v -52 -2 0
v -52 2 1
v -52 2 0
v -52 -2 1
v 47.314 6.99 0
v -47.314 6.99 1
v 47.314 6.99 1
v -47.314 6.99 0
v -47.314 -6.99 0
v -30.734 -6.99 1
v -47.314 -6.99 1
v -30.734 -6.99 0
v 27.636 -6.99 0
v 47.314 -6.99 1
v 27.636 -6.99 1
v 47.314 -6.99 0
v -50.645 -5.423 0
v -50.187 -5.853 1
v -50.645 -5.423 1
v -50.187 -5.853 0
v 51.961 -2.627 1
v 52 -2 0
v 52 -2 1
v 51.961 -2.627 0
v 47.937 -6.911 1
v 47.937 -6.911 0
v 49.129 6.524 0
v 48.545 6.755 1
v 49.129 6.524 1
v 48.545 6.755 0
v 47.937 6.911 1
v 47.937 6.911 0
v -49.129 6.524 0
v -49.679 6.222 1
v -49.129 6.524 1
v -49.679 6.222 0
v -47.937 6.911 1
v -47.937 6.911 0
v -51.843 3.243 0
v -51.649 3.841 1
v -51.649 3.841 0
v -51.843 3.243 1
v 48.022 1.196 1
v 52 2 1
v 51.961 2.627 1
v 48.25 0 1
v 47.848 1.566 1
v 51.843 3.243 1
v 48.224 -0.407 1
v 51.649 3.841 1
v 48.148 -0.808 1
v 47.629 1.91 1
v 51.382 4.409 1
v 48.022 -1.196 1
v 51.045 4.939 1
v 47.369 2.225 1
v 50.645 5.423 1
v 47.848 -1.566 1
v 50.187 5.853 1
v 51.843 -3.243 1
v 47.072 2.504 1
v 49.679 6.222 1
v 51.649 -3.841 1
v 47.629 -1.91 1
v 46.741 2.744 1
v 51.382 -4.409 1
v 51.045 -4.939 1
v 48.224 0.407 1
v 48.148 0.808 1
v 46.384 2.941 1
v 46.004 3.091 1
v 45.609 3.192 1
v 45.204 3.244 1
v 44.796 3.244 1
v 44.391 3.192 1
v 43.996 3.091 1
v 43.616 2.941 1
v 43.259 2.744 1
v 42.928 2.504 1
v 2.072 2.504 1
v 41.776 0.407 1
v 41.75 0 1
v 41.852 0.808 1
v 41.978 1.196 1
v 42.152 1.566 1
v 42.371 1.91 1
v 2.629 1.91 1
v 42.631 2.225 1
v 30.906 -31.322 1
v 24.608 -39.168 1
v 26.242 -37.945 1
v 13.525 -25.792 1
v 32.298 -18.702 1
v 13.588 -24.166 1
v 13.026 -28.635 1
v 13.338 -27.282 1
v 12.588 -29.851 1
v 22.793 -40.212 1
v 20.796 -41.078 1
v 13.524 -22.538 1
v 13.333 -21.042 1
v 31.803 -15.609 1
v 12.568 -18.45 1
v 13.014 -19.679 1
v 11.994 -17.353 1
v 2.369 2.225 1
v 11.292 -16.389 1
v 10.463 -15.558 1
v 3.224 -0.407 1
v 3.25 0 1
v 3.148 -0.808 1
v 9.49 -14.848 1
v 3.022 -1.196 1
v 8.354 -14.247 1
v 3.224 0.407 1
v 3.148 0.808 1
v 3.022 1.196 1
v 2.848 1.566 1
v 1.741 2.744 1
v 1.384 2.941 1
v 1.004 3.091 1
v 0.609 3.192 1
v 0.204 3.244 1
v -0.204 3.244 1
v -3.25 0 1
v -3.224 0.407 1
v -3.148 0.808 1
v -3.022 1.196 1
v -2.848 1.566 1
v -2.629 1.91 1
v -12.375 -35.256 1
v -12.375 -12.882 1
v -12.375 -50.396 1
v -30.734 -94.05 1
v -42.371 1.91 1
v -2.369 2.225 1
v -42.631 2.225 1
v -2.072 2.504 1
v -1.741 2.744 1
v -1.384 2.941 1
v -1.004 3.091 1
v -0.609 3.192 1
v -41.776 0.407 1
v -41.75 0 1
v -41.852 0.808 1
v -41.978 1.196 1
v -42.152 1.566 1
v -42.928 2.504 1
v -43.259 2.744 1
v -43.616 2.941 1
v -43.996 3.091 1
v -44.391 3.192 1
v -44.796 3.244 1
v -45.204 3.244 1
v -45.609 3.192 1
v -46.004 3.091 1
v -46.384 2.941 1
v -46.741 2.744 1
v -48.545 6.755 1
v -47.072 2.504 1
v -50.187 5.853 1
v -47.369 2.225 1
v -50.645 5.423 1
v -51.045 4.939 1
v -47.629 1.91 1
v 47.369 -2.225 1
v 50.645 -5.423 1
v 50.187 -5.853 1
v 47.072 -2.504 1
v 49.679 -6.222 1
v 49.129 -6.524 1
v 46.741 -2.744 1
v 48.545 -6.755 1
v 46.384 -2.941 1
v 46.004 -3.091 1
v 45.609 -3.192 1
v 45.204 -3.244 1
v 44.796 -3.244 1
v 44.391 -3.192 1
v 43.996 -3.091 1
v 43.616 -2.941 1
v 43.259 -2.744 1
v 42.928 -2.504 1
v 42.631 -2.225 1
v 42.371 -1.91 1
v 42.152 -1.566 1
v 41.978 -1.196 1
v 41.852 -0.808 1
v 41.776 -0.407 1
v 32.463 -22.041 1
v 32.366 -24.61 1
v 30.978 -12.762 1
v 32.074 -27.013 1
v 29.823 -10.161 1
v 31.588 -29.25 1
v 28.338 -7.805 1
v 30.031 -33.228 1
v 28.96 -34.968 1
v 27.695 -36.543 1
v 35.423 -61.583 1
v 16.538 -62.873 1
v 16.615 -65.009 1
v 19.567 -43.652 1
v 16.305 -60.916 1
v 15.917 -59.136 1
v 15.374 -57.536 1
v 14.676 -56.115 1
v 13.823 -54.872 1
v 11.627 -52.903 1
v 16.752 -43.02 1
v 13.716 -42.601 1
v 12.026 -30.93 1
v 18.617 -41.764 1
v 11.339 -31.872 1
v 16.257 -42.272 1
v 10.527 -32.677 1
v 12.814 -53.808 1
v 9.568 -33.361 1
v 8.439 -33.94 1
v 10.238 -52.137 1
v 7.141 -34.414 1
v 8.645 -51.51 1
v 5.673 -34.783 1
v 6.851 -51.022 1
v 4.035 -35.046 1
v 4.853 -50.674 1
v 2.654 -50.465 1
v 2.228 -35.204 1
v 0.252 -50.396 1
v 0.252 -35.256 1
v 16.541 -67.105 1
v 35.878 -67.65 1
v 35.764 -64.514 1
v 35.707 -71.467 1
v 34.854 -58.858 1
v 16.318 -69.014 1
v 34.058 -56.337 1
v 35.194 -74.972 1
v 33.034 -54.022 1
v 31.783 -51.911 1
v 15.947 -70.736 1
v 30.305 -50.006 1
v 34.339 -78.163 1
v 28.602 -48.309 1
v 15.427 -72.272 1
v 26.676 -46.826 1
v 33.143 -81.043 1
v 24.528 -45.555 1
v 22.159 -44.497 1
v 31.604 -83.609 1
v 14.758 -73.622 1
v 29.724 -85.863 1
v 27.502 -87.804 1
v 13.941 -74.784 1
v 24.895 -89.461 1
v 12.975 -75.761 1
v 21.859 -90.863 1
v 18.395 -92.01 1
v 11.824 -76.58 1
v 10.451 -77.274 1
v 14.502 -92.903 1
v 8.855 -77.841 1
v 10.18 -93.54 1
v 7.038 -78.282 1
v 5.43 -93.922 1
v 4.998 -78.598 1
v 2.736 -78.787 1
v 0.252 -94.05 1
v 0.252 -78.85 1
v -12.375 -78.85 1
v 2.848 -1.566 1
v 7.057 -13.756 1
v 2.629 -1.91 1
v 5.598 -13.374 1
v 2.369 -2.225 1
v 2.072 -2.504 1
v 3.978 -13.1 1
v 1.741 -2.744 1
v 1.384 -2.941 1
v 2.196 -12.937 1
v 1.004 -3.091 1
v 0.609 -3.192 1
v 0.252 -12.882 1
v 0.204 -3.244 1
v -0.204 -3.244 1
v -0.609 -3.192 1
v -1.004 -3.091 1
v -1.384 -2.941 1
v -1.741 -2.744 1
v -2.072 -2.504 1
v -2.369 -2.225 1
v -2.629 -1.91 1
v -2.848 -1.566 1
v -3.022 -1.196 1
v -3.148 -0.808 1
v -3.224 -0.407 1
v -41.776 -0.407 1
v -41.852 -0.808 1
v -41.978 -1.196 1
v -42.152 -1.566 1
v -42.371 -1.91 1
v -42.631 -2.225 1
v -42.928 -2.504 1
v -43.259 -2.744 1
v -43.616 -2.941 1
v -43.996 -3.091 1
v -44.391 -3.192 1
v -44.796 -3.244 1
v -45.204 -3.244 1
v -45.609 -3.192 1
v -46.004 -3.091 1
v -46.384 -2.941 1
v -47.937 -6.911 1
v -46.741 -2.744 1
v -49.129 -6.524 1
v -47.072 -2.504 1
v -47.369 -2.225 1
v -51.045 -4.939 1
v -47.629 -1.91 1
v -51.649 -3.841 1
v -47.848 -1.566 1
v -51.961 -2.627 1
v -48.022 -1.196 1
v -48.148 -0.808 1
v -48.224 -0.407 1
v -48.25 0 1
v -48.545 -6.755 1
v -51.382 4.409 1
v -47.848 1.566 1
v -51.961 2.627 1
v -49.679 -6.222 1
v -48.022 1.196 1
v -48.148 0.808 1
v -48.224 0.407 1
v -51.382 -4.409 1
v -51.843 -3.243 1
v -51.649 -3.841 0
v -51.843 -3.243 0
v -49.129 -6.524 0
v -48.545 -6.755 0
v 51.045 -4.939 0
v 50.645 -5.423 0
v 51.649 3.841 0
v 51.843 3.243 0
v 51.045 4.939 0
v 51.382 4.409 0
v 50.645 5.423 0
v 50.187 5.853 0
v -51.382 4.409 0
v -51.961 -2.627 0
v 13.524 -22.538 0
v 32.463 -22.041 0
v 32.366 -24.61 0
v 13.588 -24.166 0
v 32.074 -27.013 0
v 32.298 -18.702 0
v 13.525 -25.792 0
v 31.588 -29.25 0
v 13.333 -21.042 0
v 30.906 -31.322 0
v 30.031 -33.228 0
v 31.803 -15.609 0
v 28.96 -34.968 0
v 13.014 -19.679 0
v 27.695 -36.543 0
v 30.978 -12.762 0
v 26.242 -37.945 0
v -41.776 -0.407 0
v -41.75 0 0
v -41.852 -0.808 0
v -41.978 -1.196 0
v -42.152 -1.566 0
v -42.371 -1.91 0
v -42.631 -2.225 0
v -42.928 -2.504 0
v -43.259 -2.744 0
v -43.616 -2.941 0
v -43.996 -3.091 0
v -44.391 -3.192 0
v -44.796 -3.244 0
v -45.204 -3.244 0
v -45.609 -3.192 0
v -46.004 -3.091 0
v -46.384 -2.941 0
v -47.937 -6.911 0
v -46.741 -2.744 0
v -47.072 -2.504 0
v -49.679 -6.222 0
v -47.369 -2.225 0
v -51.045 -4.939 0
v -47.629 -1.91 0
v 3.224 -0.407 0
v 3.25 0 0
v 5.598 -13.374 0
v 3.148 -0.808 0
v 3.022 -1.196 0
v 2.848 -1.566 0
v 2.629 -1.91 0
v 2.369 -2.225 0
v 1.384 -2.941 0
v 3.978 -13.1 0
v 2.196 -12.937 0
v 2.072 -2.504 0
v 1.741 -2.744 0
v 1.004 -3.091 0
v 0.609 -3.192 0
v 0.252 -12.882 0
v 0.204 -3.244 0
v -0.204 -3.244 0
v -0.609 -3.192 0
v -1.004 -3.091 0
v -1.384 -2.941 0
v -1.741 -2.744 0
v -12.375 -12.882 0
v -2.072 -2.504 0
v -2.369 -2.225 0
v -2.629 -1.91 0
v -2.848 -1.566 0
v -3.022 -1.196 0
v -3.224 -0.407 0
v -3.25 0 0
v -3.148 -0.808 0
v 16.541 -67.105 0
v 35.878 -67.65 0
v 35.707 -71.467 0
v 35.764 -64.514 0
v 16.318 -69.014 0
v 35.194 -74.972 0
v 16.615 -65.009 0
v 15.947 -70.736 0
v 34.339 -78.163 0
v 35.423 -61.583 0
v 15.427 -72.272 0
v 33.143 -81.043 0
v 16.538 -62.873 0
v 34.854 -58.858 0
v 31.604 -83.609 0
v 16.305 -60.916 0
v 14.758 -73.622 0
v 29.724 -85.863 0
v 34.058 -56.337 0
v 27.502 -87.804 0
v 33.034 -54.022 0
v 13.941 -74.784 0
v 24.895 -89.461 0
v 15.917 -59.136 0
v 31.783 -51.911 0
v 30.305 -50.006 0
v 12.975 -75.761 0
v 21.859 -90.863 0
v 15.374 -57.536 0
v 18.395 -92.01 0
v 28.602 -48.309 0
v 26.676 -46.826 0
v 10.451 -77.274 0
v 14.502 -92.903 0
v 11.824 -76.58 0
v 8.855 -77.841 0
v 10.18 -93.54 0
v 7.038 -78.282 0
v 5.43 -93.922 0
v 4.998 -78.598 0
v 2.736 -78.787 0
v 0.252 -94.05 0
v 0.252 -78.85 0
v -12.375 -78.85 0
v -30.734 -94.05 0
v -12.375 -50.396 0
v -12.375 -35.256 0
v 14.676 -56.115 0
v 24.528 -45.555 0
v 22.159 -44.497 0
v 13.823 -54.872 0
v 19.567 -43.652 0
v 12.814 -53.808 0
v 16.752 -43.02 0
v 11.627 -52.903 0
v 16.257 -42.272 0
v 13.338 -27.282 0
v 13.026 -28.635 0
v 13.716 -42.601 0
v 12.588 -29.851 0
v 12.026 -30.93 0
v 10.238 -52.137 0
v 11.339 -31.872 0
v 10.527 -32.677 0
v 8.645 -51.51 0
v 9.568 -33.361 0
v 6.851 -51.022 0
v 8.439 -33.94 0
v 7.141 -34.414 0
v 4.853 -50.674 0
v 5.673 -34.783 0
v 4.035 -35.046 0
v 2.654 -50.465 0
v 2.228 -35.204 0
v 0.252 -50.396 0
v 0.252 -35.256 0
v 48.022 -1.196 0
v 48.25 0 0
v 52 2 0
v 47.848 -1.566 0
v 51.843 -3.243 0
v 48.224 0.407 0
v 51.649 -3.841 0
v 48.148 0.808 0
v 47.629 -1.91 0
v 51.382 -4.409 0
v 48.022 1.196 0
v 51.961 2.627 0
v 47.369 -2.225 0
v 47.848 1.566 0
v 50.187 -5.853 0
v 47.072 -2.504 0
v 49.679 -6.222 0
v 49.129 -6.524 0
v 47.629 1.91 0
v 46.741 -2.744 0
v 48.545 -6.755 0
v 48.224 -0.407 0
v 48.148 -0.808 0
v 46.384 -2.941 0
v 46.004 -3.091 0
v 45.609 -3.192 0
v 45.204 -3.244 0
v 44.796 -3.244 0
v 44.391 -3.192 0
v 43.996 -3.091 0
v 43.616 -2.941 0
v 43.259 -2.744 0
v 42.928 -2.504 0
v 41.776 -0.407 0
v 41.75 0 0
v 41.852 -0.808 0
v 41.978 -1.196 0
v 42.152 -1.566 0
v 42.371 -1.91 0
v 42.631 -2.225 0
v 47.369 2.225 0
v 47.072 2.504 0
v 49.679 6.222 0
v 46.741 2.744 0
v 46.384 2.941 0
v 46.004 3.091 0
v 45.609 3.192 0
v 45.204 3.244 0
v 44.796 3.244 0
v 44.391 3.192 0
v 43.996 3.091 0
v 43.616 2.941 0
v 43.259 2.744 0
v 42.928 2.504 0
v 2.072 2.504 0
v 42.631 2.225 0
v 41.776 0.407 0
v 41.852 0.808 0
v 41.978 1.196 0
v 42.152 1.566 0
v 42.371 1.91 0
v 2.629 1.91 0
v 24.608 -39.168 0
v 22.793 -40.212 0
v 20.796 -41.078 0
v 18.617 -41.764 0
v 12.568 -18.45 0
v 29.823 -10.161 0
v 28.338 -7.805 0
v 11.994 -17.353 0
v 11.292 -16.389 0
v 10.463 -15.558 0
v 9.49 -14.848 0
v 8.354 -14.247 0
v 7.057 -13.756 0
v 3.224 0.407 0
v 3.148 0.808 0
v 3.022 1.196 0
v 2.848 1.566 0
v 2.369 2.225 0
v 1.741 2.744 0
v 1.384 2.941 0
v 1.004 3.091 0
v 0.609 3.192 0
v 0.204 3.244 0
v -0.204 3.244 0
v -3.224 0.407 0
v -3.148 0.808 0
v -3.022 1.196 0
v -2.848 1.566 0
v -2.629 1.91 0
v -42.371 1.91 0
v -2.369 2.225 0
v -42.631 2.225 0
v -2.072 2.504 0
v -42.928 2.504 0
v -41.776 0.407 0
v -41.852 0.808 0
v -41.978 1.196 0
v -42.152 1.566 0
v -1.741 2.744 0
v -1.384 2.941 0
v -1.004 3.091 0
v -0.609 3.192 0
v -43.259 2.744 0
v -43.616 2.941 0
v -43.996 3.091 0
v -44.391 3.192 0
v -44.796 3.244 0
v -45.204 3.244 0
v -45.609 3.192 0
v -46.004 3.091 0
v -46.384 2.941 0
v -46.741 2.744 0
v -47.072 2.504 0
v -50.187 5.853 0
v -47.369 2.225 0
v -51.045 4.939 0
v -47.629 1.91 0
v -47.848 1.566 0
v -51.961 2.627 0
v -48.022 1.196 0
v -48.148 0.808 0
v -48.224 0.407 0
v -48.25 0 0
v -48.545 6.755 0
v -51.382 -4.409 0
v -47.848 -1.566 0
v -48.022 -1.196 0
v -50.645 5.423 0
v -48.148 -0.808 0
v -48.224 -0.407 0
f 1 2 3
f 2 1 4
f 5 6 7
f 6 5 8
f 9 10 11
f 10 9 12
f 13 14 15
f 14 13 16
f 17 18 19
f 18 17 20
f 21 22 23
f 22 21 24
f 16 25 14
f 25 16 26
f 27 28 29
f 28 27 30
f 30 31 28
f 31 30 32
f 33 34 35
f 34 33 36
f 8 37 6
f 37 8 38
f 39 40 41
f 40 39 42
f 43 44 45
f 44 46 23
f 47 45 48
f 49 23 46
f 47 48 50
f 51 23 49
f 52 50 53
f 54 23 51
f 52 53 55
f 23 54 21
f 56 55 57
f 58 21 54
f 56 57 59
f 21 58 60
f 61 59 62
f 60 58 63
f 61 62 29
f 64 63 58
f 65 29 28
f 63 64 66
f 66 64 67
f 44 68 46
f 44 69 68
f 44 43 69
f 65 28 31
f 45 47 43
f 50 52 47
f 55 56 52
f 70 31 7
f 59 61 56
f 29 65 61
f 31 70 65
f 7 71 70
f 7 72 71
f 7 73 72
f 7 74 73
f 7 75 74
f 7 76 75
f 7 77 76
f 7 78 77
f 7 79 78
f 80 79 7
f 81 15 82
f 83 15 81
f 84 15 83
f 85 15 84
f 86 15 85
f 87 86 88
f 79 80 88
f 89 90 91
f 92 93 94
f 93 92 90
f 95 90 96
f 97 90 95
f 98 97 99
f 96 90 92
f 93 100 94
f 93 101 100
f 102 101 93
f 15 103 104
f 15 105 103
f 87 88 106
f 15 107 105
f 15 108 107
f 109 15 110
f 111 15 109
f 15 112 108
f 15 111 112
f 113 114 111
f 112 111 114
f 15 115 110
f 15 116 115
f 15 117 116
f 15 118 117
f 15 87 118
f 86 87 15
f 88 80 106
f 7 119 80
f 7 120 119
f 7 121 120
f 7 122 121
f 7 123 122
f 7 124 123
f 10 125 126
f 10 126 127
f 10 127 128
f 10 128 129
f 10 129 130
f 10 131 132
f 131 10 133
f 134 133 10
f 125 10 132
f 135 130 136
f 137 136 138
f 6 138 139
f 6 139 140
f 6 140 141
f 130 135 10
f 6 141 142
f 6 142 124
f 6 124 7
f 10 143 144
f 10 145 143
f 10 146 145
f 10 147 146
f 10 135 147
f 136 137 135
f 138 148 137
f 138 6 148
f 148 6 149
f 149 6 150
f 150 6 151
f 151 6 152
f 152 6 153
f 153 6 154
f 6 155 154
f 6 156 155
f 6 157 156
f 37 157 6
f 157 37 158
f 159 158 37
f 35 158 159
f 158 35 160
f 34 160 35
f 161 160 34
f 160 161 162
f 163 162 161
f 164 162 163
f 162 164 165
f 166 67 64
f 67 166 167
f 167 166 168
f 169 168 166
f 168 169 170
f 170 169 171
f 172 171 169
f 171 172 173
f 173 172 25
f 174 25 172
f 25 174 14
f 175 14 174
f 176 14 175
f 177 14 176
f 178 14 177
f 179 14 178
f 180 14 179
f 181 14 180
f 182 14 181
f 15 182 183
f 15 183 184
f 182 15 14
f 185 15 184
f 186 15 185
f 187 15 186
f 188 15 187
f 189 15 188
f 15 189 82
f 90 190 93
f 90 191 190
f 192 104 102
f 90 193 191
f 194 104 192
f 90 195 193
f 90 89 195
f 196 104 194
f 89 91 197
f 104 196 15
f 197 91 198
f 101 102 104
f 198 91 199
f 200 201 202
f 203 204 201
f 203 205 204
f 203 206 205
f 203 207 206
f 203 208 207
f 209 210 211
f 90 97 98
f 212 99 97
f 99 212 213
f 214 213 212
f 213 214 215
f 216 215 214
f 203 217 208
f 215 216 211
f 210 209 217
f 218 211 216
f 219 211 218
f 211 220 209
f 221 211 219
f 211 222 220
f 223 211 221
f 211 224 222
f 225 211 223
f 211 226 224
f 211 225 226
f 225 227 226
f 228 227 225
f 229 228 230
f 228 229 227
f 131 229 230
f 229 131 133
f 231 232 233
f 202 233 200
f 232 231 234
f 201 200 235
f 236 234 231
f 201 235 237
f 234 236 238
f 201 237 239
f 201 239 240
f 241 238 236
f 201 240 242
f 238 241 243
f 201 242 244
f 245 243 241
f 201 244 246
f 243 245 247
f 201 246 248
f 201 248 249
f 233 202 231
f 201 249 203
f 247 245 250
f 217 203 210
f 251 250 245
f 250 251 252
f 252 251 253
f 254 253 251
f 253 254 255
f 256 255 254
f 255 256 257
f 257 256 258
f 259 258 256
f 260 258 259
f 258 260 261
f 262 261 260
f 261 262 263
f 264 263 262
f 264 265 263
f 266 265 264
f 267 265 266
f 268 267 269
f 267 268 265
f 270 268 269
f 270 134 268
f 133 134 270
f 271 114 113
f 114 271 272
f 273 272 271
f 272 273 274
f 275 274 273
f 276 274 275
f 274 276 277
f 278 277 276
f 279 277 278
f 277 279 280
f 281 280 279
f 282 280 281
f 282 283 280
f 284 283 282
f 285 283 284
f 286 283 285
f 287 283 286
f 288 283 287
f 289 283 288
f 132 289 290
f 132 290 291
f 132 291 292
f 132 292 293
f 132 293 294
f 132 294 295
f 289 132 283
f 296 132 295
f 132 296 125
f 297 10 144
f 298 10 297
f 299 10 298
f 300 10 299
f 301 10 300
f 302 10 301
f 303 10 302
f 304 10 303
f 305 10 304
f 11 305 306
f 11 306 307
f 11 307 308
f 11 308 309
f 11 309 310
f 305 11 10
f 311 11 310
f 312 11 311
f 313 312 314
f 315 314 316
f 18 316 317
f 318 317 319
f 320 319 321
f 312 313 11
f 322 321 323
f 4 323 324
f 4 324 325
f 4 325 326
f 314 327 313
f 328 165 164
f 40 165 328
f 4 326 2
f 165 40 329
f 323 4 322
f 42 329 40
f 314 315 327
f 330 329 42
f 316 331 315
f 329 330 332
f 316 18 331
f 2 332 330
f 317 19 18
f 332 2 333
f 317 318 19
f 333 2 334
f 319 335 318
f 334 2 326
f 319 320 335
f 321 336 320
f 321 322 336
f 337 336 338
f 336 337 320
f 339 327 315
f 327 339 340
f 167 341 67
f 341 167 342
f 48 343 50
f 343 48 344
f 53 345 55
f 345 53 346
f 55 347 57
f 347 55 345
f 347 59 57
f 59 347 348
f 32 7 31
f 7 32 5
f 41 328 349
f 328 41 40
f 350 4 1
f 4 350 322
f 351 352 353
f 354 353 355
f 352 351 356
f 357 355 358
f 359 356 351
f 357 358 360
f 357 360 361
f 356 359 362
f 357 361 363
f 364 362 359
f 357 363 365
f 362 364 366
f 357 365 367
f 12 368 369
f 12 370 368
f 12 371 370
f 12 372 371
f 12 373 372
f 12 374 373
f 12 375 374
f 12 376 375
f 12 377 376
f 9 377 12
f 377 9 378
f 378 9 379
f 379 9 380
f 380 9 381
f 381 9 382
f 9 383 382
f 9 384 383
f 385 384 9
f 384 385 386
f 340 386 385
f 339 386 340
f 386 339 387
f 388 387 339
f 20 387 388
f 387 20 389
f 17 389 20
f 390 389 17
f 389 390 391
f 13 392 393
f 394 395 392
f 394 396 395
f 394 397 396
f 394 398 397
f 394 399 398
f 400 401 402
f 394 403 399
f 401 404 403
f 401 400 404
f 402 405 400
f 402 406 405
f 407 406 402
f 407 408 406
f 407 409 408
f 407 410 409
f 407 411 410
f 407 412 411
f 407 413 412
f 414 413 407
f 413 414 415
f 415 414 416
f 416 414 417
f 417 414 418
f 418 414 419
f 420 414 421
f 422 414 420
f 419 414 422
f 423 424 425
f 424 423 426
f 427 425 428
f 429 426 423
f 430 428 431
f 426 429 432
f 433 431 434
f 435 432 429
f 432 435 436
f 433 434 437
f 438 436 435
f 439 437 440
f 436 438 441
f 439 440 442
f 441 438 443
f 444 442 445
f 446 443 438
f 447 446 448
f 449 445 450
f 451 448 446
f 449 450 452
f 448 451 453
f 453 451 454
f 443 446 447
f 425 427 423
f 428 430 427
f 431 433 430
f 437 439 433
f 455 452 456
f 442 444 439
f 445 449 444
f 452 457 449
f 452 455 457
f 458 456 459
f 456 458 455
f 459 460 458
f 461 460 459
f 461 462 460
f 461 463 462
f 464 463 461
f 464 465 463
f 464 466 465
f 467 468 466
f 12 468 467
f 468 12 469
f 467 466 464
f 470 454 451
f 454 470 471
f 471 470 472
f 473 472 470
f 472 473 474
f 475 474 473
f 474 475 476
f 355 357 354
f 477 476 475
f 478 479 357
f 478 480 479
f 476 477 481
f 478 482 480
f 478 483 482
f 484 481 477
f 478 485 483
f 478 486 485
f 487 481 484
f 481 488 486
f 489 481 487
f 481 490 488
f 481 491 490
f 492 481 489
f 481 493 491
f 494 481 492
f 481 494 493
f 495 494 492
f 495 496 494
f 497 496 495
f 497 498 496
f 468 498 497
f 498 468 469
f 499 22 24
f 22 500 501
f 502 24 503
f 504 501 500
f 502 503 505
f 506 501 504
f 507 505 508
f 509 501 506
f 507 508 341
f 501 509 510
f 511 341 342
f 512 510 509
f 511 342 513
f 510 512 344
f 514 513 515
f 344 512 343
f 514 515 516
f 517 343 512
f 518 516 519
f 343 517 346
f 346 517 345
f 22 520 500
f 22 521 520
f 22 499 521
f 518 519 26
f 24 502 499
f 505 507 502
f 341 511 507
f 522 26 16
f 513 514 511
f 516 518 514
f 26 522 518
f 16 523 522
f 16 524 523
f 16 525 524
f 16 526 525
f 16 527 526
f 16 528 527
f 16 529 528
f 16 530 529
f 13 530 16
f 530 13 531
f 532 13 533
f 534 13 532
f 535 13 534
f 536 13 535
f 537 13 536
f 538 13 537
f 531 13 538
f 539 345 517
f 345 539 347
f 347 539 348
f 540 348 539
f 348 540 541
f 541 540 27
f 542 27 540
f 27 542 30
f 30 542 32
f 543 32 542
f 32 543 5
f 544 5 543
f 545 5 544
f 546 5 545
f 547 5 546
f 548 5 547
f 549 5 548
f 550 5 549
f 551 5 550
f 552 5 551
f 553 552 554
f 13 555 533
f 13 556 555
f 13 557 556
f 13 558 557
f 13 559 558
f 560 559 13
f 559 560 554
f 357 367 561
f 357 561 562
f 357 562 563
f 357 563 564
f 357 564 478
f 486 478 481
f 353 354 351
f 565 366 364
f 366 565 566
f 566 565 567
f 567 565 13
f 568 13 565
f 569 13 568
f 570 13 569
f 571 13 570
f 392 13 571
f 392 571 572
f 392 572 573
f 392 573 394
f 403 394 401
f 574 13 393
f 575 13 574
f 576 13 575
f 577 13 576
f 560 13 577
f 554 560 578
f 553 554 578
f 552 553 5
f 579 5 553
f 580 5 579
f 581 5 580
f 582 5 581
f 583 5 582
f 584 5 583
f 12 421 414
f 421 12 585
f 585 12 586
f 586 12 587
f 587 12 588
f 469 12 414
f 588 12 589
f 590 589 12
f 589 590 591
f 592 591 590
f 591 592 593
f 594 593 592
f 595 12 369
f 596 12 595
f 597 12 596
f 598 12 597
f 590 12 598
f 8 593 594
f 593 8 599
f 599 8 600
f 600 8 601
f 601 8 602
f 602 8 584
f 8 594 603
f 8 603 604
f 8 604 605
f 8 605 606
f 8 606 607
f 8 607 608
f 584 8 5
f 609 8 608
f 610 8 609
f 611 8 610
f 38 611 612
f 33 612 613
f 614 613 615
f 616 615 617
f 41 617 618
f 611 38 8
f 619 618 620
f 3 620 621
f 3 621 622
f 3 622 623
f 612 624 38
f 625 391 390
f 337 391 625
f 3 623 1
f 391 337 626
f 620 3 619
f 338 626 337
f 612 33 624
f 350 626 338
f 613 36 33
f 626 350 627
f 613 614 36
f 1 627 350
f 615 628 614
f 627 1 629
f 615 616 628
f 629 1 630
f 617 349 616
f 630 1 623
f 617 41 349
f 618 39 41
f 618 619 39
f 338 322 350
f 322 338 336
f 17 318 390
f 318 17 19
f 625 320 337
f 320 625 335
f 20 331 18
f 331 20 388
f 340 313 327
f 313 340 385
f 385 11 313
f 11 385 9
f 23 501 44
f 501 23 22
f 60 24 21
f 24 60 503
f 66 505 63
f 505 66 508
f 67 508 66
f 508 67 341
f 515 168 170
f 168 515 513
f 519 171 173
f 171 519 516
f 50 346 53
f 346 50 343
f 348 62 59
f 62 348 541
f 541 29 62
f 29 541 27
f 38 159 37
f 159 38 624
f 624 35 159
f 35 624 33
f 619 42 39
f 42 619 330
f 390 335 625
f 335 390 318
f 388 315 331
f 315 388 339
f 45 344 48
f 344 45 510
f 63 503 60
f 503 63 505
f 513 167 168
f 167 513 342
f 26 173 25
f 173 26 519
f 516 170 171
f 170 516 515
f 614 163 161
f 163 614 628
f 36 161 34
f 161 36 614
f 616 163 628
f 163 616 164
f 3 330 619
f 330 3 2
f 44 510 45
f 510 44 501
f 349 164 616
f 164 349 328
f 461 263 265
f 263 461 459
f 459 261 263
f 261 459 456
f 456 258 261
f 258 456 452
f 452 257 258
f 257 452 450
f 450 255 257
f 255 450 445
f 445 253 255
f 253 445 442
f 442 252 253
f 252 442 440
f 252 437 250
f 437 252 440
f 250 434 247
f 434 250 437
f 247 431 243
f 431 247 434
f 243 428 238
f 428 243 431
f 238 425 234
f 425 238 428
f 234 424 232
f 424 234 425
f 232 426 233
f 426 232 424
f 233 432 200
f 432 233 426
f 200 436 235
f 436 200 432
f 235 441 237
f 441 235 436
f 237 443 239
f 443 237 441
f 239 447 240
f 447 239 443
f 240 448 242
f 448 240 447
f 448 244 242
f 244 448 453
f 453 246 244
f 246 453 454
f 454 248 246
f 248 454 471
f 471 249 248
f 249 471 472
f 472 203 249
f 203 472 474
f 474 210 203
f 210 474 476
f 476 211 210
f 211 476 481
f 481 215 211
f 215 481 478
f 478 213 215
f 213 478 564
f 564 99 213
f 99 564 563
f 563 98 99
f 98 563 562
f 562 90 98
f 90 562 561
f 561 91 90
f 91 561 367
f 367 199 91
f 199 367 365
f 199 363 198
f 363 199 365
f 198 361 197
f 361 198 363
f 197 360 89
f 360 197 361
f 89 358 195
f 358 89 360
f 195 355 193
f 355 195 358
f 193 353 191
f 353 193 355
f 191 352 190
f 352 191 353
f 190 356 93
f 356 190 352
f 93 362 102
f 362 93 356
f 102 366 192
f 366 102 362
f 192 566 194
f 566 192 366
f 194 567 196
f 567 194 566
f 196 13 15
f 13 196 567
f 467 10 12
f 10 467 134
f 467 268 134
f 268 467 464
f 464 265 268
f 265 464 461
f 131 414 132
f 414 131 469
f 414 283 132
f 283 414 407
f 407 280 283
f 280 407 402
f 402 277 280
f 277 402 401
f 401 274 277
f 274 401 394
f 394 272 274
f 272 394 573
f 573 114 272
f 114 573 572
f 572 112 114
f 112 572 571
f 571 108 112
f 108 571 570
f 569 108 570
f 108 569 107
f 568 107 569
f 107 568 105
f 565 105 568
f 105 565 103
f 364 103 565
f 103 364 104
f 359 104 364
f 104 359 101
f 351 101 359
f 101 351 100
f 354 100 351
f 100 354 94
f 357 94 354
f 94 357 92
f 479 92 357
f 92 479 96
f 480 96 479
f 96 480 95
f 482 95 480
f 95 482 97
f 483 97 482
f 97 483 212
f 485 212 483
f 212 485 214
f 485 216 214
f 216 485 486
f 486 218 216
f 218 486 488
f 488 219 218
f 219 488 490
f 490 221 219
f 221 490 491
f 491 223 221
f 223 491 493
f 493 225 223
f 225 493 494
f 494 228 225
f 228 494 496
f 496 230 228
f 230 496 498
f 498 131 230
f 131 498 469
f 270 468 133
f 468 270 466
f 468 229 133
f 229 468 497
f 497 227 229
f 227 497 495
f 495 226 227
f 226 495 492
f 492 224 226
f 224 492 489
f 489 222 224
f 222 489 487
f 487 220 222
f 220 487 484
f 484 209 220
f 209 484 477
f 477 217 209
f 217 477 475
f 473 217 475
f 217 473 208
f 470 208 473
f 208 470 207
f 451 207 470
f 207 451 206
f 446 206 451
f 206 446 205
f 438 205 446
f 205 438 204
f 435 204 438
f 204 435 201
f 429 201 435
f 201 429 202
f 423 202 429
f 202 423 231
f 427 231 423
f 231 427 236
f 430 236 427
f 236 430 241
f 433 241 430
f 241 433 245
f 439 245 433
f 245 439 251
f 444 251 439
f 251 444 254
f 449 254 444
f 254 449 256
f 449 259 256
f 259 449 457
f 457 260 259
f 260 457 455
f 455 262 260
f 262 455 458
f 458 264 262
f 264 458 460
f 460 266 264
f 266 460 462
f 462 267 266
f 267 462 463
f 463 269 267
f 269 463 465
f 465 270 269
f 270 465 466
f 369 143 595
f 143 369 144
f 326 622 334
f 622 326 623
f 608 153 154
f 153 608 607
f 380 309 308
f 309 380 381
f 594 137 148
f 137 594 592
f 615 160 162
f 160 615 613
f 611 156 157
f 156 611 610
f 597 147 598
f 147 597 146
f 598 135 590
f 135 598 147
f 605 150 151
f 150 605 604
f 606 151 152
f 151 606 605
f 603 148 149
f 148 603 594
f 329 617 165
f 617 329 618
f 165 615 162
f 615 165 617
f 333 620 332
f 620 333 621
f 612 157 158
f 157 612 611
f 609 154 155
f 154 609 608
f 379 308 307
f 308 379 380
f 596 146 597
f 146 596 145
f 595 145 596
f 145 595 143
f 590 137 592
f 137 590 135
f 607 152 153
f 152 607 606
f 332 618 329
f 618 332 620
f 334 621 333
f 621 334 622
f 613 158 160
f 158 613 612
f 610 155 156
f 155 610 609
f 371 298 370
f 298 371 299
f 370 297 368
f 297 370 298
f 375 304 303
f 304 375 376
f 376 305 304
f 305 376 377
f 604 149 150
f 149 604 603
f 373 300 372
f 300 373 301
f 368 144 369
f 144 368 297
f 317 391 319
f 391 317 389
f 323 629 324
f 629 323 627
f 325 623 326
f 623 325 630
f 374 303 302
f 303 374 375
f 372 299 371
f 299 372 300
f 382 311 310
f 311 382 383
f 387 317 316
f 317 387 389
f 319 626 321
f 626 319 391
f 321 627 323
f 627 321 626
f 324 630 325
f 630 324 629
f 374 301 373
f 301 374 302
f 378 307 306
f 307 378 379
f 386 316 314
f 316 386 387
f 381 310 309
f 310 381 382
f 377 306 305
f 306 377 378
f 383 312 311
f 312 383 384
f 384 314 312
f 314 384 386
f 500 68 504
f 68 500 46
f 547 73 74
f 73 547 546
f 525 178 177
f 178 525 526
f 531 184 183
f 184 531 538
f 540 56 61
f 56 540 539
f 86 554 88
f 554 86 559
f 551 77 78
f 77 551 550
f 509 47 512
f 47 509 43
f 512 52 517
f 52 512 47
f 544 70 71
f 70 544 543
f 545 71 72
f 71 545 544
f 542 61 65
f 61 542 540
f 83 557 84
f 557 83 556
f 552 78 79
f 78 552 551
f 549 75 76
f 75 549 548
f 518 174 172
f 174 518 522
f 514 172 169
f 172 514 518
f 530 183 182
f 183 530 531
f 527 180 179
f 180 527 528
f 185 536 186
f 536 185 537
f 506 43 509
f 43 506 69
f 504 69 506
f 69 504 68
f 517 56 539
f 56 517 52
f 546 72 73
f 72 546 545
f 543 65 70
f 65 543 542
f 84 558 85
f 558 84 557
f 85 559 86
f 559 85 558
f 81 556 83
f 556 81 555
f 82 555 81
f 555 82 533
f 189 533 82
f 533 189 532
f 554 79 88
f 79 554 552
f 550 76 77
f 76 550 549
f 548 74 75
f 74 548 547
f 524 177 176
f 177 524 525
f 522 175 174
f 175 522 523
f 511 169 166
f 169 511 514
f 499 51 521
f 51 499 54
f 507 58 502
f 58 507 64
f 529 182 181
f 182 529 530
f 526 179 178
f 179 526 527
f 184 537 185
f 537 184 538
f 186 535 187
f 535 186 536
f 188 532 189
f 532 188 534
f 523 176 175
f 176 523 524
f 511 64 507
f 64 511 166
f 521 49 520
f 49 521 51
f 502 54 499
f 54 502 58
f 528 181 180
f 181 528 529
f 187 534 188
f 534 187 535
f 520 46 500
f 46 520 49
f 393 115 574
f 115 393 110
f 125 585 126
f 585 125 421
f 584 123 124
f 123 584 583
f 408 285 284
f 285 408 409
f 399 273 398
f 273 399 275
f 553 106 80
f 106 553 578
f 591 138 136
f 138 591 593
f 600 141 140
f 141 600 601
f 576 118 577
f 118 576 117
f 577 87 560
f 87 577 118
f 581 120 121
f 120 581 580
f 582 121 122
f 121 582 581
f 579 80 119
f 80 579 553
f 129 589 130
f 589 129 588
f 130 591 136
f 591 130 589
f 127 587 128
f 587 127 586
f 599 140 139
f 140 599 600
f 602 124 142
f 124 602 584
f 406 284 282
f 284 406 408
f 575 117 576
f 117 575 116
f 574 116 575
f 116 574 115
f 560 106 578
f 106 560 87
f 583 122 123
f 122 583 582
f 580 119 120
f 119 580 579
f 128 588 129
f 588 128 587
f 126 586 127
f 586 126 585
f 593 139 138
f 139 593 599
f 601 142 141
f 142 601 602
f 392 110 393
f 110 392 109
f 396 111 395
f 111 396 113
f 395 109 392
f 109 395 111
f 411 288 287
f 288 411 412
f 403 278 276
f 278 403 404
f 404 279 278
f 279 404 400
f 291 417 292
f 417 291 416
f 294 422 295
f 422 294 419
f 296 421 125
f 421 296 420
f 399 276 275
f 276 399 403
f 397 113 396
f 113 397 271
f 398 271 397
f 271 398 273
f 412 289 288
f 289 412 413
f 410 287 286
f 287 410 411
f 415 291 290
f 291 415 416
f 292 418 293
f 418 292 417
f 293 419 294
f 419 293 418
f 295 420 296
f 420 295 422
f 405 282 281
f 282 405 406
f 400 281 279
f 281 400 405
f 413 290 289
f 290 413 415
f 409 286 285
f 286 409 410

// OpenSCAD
$fn = 50;


difference() {
	union() {
		translate(v = [0, 0, 0]) {
			rotate(a = [0, 0, 0]) {
				hull() {
					translate(v = [-47.0000000000, 2.0000000000, 0]) {
						rotate(a = [0, 0, 0]) {
							translate(v = [0, 0, 0]) {
								rotate(a = [0, 0, 0]) {
									cylinder(h = 1, r = 5);
								}
							}
						}
					}
					translate(v = [47.0000000000, 2.0000000000, 0]) {
						rotate(a = [0, 0, 0]) {
							translate(v = [0, 0, 0]) {
								rotate(a = [0, 0, 0]) {
									cylinder(h = 1, r = 5);
								}
							}
						}
					}
					translate(v = [-47.0000000000, -2.0000000000, 0]) {
						rotate(a = [0, 0, 0]) {
							translate(v = [0, 0, 0]) {
								rotate(a = [0, 0, 0]) {
									cylinder(h = 1, r = 5);
								}
							}
						}
					}
					translate(v = [47.0000000000, -2.0000000000, 0]) {
						rotate(a = [0, 0, 0]) {
							translate(v = [0, 0, 0]) {
								rotate(a = [0, 0, 0]) {
									cylinder(h = 1, r = 5);
								}
							}
						}
					}
				}
			}
		}
		translate(v = [0, 0, 0]) {
			rotate(a = [0, 0, 0]) {
				linear_extrude(height = 1) {
					text(font = "DejaVu Sans Mono:style=Bold", halign = "center", size = 95, text = "B", valign = "top");
				}
			}
		}
	}
	union() {
		translate(v = [-45.0000000000, 0.0000000000, -125.0000000000]) {
			rotate(a = [0, 0, 0]) {
				cylinder(h = 250, r = 3.2500000000);
			}
		}
		translate(v = [45.0000000000, 0.0000000000, -125.0000000000]) {
			rotate(a = [0, 0, 0]) {
				cylinder(h = 250, r = 3.2500000000);
			}
		}
		translate(v = [45.0000000000, 0.0000000000, -125.0000000000]) {
			rotate(a = [0, 0, 0]) {
				cylinder(h = 250, r = 3.2500000000);
			}
		}
		translate(v = [0, 0, -125.0000000000]) {
			rotate(a = [0, 0, 0]) {
				cylinder(h = 250, r = 3.2500000000);
			}
		}
	}
}
